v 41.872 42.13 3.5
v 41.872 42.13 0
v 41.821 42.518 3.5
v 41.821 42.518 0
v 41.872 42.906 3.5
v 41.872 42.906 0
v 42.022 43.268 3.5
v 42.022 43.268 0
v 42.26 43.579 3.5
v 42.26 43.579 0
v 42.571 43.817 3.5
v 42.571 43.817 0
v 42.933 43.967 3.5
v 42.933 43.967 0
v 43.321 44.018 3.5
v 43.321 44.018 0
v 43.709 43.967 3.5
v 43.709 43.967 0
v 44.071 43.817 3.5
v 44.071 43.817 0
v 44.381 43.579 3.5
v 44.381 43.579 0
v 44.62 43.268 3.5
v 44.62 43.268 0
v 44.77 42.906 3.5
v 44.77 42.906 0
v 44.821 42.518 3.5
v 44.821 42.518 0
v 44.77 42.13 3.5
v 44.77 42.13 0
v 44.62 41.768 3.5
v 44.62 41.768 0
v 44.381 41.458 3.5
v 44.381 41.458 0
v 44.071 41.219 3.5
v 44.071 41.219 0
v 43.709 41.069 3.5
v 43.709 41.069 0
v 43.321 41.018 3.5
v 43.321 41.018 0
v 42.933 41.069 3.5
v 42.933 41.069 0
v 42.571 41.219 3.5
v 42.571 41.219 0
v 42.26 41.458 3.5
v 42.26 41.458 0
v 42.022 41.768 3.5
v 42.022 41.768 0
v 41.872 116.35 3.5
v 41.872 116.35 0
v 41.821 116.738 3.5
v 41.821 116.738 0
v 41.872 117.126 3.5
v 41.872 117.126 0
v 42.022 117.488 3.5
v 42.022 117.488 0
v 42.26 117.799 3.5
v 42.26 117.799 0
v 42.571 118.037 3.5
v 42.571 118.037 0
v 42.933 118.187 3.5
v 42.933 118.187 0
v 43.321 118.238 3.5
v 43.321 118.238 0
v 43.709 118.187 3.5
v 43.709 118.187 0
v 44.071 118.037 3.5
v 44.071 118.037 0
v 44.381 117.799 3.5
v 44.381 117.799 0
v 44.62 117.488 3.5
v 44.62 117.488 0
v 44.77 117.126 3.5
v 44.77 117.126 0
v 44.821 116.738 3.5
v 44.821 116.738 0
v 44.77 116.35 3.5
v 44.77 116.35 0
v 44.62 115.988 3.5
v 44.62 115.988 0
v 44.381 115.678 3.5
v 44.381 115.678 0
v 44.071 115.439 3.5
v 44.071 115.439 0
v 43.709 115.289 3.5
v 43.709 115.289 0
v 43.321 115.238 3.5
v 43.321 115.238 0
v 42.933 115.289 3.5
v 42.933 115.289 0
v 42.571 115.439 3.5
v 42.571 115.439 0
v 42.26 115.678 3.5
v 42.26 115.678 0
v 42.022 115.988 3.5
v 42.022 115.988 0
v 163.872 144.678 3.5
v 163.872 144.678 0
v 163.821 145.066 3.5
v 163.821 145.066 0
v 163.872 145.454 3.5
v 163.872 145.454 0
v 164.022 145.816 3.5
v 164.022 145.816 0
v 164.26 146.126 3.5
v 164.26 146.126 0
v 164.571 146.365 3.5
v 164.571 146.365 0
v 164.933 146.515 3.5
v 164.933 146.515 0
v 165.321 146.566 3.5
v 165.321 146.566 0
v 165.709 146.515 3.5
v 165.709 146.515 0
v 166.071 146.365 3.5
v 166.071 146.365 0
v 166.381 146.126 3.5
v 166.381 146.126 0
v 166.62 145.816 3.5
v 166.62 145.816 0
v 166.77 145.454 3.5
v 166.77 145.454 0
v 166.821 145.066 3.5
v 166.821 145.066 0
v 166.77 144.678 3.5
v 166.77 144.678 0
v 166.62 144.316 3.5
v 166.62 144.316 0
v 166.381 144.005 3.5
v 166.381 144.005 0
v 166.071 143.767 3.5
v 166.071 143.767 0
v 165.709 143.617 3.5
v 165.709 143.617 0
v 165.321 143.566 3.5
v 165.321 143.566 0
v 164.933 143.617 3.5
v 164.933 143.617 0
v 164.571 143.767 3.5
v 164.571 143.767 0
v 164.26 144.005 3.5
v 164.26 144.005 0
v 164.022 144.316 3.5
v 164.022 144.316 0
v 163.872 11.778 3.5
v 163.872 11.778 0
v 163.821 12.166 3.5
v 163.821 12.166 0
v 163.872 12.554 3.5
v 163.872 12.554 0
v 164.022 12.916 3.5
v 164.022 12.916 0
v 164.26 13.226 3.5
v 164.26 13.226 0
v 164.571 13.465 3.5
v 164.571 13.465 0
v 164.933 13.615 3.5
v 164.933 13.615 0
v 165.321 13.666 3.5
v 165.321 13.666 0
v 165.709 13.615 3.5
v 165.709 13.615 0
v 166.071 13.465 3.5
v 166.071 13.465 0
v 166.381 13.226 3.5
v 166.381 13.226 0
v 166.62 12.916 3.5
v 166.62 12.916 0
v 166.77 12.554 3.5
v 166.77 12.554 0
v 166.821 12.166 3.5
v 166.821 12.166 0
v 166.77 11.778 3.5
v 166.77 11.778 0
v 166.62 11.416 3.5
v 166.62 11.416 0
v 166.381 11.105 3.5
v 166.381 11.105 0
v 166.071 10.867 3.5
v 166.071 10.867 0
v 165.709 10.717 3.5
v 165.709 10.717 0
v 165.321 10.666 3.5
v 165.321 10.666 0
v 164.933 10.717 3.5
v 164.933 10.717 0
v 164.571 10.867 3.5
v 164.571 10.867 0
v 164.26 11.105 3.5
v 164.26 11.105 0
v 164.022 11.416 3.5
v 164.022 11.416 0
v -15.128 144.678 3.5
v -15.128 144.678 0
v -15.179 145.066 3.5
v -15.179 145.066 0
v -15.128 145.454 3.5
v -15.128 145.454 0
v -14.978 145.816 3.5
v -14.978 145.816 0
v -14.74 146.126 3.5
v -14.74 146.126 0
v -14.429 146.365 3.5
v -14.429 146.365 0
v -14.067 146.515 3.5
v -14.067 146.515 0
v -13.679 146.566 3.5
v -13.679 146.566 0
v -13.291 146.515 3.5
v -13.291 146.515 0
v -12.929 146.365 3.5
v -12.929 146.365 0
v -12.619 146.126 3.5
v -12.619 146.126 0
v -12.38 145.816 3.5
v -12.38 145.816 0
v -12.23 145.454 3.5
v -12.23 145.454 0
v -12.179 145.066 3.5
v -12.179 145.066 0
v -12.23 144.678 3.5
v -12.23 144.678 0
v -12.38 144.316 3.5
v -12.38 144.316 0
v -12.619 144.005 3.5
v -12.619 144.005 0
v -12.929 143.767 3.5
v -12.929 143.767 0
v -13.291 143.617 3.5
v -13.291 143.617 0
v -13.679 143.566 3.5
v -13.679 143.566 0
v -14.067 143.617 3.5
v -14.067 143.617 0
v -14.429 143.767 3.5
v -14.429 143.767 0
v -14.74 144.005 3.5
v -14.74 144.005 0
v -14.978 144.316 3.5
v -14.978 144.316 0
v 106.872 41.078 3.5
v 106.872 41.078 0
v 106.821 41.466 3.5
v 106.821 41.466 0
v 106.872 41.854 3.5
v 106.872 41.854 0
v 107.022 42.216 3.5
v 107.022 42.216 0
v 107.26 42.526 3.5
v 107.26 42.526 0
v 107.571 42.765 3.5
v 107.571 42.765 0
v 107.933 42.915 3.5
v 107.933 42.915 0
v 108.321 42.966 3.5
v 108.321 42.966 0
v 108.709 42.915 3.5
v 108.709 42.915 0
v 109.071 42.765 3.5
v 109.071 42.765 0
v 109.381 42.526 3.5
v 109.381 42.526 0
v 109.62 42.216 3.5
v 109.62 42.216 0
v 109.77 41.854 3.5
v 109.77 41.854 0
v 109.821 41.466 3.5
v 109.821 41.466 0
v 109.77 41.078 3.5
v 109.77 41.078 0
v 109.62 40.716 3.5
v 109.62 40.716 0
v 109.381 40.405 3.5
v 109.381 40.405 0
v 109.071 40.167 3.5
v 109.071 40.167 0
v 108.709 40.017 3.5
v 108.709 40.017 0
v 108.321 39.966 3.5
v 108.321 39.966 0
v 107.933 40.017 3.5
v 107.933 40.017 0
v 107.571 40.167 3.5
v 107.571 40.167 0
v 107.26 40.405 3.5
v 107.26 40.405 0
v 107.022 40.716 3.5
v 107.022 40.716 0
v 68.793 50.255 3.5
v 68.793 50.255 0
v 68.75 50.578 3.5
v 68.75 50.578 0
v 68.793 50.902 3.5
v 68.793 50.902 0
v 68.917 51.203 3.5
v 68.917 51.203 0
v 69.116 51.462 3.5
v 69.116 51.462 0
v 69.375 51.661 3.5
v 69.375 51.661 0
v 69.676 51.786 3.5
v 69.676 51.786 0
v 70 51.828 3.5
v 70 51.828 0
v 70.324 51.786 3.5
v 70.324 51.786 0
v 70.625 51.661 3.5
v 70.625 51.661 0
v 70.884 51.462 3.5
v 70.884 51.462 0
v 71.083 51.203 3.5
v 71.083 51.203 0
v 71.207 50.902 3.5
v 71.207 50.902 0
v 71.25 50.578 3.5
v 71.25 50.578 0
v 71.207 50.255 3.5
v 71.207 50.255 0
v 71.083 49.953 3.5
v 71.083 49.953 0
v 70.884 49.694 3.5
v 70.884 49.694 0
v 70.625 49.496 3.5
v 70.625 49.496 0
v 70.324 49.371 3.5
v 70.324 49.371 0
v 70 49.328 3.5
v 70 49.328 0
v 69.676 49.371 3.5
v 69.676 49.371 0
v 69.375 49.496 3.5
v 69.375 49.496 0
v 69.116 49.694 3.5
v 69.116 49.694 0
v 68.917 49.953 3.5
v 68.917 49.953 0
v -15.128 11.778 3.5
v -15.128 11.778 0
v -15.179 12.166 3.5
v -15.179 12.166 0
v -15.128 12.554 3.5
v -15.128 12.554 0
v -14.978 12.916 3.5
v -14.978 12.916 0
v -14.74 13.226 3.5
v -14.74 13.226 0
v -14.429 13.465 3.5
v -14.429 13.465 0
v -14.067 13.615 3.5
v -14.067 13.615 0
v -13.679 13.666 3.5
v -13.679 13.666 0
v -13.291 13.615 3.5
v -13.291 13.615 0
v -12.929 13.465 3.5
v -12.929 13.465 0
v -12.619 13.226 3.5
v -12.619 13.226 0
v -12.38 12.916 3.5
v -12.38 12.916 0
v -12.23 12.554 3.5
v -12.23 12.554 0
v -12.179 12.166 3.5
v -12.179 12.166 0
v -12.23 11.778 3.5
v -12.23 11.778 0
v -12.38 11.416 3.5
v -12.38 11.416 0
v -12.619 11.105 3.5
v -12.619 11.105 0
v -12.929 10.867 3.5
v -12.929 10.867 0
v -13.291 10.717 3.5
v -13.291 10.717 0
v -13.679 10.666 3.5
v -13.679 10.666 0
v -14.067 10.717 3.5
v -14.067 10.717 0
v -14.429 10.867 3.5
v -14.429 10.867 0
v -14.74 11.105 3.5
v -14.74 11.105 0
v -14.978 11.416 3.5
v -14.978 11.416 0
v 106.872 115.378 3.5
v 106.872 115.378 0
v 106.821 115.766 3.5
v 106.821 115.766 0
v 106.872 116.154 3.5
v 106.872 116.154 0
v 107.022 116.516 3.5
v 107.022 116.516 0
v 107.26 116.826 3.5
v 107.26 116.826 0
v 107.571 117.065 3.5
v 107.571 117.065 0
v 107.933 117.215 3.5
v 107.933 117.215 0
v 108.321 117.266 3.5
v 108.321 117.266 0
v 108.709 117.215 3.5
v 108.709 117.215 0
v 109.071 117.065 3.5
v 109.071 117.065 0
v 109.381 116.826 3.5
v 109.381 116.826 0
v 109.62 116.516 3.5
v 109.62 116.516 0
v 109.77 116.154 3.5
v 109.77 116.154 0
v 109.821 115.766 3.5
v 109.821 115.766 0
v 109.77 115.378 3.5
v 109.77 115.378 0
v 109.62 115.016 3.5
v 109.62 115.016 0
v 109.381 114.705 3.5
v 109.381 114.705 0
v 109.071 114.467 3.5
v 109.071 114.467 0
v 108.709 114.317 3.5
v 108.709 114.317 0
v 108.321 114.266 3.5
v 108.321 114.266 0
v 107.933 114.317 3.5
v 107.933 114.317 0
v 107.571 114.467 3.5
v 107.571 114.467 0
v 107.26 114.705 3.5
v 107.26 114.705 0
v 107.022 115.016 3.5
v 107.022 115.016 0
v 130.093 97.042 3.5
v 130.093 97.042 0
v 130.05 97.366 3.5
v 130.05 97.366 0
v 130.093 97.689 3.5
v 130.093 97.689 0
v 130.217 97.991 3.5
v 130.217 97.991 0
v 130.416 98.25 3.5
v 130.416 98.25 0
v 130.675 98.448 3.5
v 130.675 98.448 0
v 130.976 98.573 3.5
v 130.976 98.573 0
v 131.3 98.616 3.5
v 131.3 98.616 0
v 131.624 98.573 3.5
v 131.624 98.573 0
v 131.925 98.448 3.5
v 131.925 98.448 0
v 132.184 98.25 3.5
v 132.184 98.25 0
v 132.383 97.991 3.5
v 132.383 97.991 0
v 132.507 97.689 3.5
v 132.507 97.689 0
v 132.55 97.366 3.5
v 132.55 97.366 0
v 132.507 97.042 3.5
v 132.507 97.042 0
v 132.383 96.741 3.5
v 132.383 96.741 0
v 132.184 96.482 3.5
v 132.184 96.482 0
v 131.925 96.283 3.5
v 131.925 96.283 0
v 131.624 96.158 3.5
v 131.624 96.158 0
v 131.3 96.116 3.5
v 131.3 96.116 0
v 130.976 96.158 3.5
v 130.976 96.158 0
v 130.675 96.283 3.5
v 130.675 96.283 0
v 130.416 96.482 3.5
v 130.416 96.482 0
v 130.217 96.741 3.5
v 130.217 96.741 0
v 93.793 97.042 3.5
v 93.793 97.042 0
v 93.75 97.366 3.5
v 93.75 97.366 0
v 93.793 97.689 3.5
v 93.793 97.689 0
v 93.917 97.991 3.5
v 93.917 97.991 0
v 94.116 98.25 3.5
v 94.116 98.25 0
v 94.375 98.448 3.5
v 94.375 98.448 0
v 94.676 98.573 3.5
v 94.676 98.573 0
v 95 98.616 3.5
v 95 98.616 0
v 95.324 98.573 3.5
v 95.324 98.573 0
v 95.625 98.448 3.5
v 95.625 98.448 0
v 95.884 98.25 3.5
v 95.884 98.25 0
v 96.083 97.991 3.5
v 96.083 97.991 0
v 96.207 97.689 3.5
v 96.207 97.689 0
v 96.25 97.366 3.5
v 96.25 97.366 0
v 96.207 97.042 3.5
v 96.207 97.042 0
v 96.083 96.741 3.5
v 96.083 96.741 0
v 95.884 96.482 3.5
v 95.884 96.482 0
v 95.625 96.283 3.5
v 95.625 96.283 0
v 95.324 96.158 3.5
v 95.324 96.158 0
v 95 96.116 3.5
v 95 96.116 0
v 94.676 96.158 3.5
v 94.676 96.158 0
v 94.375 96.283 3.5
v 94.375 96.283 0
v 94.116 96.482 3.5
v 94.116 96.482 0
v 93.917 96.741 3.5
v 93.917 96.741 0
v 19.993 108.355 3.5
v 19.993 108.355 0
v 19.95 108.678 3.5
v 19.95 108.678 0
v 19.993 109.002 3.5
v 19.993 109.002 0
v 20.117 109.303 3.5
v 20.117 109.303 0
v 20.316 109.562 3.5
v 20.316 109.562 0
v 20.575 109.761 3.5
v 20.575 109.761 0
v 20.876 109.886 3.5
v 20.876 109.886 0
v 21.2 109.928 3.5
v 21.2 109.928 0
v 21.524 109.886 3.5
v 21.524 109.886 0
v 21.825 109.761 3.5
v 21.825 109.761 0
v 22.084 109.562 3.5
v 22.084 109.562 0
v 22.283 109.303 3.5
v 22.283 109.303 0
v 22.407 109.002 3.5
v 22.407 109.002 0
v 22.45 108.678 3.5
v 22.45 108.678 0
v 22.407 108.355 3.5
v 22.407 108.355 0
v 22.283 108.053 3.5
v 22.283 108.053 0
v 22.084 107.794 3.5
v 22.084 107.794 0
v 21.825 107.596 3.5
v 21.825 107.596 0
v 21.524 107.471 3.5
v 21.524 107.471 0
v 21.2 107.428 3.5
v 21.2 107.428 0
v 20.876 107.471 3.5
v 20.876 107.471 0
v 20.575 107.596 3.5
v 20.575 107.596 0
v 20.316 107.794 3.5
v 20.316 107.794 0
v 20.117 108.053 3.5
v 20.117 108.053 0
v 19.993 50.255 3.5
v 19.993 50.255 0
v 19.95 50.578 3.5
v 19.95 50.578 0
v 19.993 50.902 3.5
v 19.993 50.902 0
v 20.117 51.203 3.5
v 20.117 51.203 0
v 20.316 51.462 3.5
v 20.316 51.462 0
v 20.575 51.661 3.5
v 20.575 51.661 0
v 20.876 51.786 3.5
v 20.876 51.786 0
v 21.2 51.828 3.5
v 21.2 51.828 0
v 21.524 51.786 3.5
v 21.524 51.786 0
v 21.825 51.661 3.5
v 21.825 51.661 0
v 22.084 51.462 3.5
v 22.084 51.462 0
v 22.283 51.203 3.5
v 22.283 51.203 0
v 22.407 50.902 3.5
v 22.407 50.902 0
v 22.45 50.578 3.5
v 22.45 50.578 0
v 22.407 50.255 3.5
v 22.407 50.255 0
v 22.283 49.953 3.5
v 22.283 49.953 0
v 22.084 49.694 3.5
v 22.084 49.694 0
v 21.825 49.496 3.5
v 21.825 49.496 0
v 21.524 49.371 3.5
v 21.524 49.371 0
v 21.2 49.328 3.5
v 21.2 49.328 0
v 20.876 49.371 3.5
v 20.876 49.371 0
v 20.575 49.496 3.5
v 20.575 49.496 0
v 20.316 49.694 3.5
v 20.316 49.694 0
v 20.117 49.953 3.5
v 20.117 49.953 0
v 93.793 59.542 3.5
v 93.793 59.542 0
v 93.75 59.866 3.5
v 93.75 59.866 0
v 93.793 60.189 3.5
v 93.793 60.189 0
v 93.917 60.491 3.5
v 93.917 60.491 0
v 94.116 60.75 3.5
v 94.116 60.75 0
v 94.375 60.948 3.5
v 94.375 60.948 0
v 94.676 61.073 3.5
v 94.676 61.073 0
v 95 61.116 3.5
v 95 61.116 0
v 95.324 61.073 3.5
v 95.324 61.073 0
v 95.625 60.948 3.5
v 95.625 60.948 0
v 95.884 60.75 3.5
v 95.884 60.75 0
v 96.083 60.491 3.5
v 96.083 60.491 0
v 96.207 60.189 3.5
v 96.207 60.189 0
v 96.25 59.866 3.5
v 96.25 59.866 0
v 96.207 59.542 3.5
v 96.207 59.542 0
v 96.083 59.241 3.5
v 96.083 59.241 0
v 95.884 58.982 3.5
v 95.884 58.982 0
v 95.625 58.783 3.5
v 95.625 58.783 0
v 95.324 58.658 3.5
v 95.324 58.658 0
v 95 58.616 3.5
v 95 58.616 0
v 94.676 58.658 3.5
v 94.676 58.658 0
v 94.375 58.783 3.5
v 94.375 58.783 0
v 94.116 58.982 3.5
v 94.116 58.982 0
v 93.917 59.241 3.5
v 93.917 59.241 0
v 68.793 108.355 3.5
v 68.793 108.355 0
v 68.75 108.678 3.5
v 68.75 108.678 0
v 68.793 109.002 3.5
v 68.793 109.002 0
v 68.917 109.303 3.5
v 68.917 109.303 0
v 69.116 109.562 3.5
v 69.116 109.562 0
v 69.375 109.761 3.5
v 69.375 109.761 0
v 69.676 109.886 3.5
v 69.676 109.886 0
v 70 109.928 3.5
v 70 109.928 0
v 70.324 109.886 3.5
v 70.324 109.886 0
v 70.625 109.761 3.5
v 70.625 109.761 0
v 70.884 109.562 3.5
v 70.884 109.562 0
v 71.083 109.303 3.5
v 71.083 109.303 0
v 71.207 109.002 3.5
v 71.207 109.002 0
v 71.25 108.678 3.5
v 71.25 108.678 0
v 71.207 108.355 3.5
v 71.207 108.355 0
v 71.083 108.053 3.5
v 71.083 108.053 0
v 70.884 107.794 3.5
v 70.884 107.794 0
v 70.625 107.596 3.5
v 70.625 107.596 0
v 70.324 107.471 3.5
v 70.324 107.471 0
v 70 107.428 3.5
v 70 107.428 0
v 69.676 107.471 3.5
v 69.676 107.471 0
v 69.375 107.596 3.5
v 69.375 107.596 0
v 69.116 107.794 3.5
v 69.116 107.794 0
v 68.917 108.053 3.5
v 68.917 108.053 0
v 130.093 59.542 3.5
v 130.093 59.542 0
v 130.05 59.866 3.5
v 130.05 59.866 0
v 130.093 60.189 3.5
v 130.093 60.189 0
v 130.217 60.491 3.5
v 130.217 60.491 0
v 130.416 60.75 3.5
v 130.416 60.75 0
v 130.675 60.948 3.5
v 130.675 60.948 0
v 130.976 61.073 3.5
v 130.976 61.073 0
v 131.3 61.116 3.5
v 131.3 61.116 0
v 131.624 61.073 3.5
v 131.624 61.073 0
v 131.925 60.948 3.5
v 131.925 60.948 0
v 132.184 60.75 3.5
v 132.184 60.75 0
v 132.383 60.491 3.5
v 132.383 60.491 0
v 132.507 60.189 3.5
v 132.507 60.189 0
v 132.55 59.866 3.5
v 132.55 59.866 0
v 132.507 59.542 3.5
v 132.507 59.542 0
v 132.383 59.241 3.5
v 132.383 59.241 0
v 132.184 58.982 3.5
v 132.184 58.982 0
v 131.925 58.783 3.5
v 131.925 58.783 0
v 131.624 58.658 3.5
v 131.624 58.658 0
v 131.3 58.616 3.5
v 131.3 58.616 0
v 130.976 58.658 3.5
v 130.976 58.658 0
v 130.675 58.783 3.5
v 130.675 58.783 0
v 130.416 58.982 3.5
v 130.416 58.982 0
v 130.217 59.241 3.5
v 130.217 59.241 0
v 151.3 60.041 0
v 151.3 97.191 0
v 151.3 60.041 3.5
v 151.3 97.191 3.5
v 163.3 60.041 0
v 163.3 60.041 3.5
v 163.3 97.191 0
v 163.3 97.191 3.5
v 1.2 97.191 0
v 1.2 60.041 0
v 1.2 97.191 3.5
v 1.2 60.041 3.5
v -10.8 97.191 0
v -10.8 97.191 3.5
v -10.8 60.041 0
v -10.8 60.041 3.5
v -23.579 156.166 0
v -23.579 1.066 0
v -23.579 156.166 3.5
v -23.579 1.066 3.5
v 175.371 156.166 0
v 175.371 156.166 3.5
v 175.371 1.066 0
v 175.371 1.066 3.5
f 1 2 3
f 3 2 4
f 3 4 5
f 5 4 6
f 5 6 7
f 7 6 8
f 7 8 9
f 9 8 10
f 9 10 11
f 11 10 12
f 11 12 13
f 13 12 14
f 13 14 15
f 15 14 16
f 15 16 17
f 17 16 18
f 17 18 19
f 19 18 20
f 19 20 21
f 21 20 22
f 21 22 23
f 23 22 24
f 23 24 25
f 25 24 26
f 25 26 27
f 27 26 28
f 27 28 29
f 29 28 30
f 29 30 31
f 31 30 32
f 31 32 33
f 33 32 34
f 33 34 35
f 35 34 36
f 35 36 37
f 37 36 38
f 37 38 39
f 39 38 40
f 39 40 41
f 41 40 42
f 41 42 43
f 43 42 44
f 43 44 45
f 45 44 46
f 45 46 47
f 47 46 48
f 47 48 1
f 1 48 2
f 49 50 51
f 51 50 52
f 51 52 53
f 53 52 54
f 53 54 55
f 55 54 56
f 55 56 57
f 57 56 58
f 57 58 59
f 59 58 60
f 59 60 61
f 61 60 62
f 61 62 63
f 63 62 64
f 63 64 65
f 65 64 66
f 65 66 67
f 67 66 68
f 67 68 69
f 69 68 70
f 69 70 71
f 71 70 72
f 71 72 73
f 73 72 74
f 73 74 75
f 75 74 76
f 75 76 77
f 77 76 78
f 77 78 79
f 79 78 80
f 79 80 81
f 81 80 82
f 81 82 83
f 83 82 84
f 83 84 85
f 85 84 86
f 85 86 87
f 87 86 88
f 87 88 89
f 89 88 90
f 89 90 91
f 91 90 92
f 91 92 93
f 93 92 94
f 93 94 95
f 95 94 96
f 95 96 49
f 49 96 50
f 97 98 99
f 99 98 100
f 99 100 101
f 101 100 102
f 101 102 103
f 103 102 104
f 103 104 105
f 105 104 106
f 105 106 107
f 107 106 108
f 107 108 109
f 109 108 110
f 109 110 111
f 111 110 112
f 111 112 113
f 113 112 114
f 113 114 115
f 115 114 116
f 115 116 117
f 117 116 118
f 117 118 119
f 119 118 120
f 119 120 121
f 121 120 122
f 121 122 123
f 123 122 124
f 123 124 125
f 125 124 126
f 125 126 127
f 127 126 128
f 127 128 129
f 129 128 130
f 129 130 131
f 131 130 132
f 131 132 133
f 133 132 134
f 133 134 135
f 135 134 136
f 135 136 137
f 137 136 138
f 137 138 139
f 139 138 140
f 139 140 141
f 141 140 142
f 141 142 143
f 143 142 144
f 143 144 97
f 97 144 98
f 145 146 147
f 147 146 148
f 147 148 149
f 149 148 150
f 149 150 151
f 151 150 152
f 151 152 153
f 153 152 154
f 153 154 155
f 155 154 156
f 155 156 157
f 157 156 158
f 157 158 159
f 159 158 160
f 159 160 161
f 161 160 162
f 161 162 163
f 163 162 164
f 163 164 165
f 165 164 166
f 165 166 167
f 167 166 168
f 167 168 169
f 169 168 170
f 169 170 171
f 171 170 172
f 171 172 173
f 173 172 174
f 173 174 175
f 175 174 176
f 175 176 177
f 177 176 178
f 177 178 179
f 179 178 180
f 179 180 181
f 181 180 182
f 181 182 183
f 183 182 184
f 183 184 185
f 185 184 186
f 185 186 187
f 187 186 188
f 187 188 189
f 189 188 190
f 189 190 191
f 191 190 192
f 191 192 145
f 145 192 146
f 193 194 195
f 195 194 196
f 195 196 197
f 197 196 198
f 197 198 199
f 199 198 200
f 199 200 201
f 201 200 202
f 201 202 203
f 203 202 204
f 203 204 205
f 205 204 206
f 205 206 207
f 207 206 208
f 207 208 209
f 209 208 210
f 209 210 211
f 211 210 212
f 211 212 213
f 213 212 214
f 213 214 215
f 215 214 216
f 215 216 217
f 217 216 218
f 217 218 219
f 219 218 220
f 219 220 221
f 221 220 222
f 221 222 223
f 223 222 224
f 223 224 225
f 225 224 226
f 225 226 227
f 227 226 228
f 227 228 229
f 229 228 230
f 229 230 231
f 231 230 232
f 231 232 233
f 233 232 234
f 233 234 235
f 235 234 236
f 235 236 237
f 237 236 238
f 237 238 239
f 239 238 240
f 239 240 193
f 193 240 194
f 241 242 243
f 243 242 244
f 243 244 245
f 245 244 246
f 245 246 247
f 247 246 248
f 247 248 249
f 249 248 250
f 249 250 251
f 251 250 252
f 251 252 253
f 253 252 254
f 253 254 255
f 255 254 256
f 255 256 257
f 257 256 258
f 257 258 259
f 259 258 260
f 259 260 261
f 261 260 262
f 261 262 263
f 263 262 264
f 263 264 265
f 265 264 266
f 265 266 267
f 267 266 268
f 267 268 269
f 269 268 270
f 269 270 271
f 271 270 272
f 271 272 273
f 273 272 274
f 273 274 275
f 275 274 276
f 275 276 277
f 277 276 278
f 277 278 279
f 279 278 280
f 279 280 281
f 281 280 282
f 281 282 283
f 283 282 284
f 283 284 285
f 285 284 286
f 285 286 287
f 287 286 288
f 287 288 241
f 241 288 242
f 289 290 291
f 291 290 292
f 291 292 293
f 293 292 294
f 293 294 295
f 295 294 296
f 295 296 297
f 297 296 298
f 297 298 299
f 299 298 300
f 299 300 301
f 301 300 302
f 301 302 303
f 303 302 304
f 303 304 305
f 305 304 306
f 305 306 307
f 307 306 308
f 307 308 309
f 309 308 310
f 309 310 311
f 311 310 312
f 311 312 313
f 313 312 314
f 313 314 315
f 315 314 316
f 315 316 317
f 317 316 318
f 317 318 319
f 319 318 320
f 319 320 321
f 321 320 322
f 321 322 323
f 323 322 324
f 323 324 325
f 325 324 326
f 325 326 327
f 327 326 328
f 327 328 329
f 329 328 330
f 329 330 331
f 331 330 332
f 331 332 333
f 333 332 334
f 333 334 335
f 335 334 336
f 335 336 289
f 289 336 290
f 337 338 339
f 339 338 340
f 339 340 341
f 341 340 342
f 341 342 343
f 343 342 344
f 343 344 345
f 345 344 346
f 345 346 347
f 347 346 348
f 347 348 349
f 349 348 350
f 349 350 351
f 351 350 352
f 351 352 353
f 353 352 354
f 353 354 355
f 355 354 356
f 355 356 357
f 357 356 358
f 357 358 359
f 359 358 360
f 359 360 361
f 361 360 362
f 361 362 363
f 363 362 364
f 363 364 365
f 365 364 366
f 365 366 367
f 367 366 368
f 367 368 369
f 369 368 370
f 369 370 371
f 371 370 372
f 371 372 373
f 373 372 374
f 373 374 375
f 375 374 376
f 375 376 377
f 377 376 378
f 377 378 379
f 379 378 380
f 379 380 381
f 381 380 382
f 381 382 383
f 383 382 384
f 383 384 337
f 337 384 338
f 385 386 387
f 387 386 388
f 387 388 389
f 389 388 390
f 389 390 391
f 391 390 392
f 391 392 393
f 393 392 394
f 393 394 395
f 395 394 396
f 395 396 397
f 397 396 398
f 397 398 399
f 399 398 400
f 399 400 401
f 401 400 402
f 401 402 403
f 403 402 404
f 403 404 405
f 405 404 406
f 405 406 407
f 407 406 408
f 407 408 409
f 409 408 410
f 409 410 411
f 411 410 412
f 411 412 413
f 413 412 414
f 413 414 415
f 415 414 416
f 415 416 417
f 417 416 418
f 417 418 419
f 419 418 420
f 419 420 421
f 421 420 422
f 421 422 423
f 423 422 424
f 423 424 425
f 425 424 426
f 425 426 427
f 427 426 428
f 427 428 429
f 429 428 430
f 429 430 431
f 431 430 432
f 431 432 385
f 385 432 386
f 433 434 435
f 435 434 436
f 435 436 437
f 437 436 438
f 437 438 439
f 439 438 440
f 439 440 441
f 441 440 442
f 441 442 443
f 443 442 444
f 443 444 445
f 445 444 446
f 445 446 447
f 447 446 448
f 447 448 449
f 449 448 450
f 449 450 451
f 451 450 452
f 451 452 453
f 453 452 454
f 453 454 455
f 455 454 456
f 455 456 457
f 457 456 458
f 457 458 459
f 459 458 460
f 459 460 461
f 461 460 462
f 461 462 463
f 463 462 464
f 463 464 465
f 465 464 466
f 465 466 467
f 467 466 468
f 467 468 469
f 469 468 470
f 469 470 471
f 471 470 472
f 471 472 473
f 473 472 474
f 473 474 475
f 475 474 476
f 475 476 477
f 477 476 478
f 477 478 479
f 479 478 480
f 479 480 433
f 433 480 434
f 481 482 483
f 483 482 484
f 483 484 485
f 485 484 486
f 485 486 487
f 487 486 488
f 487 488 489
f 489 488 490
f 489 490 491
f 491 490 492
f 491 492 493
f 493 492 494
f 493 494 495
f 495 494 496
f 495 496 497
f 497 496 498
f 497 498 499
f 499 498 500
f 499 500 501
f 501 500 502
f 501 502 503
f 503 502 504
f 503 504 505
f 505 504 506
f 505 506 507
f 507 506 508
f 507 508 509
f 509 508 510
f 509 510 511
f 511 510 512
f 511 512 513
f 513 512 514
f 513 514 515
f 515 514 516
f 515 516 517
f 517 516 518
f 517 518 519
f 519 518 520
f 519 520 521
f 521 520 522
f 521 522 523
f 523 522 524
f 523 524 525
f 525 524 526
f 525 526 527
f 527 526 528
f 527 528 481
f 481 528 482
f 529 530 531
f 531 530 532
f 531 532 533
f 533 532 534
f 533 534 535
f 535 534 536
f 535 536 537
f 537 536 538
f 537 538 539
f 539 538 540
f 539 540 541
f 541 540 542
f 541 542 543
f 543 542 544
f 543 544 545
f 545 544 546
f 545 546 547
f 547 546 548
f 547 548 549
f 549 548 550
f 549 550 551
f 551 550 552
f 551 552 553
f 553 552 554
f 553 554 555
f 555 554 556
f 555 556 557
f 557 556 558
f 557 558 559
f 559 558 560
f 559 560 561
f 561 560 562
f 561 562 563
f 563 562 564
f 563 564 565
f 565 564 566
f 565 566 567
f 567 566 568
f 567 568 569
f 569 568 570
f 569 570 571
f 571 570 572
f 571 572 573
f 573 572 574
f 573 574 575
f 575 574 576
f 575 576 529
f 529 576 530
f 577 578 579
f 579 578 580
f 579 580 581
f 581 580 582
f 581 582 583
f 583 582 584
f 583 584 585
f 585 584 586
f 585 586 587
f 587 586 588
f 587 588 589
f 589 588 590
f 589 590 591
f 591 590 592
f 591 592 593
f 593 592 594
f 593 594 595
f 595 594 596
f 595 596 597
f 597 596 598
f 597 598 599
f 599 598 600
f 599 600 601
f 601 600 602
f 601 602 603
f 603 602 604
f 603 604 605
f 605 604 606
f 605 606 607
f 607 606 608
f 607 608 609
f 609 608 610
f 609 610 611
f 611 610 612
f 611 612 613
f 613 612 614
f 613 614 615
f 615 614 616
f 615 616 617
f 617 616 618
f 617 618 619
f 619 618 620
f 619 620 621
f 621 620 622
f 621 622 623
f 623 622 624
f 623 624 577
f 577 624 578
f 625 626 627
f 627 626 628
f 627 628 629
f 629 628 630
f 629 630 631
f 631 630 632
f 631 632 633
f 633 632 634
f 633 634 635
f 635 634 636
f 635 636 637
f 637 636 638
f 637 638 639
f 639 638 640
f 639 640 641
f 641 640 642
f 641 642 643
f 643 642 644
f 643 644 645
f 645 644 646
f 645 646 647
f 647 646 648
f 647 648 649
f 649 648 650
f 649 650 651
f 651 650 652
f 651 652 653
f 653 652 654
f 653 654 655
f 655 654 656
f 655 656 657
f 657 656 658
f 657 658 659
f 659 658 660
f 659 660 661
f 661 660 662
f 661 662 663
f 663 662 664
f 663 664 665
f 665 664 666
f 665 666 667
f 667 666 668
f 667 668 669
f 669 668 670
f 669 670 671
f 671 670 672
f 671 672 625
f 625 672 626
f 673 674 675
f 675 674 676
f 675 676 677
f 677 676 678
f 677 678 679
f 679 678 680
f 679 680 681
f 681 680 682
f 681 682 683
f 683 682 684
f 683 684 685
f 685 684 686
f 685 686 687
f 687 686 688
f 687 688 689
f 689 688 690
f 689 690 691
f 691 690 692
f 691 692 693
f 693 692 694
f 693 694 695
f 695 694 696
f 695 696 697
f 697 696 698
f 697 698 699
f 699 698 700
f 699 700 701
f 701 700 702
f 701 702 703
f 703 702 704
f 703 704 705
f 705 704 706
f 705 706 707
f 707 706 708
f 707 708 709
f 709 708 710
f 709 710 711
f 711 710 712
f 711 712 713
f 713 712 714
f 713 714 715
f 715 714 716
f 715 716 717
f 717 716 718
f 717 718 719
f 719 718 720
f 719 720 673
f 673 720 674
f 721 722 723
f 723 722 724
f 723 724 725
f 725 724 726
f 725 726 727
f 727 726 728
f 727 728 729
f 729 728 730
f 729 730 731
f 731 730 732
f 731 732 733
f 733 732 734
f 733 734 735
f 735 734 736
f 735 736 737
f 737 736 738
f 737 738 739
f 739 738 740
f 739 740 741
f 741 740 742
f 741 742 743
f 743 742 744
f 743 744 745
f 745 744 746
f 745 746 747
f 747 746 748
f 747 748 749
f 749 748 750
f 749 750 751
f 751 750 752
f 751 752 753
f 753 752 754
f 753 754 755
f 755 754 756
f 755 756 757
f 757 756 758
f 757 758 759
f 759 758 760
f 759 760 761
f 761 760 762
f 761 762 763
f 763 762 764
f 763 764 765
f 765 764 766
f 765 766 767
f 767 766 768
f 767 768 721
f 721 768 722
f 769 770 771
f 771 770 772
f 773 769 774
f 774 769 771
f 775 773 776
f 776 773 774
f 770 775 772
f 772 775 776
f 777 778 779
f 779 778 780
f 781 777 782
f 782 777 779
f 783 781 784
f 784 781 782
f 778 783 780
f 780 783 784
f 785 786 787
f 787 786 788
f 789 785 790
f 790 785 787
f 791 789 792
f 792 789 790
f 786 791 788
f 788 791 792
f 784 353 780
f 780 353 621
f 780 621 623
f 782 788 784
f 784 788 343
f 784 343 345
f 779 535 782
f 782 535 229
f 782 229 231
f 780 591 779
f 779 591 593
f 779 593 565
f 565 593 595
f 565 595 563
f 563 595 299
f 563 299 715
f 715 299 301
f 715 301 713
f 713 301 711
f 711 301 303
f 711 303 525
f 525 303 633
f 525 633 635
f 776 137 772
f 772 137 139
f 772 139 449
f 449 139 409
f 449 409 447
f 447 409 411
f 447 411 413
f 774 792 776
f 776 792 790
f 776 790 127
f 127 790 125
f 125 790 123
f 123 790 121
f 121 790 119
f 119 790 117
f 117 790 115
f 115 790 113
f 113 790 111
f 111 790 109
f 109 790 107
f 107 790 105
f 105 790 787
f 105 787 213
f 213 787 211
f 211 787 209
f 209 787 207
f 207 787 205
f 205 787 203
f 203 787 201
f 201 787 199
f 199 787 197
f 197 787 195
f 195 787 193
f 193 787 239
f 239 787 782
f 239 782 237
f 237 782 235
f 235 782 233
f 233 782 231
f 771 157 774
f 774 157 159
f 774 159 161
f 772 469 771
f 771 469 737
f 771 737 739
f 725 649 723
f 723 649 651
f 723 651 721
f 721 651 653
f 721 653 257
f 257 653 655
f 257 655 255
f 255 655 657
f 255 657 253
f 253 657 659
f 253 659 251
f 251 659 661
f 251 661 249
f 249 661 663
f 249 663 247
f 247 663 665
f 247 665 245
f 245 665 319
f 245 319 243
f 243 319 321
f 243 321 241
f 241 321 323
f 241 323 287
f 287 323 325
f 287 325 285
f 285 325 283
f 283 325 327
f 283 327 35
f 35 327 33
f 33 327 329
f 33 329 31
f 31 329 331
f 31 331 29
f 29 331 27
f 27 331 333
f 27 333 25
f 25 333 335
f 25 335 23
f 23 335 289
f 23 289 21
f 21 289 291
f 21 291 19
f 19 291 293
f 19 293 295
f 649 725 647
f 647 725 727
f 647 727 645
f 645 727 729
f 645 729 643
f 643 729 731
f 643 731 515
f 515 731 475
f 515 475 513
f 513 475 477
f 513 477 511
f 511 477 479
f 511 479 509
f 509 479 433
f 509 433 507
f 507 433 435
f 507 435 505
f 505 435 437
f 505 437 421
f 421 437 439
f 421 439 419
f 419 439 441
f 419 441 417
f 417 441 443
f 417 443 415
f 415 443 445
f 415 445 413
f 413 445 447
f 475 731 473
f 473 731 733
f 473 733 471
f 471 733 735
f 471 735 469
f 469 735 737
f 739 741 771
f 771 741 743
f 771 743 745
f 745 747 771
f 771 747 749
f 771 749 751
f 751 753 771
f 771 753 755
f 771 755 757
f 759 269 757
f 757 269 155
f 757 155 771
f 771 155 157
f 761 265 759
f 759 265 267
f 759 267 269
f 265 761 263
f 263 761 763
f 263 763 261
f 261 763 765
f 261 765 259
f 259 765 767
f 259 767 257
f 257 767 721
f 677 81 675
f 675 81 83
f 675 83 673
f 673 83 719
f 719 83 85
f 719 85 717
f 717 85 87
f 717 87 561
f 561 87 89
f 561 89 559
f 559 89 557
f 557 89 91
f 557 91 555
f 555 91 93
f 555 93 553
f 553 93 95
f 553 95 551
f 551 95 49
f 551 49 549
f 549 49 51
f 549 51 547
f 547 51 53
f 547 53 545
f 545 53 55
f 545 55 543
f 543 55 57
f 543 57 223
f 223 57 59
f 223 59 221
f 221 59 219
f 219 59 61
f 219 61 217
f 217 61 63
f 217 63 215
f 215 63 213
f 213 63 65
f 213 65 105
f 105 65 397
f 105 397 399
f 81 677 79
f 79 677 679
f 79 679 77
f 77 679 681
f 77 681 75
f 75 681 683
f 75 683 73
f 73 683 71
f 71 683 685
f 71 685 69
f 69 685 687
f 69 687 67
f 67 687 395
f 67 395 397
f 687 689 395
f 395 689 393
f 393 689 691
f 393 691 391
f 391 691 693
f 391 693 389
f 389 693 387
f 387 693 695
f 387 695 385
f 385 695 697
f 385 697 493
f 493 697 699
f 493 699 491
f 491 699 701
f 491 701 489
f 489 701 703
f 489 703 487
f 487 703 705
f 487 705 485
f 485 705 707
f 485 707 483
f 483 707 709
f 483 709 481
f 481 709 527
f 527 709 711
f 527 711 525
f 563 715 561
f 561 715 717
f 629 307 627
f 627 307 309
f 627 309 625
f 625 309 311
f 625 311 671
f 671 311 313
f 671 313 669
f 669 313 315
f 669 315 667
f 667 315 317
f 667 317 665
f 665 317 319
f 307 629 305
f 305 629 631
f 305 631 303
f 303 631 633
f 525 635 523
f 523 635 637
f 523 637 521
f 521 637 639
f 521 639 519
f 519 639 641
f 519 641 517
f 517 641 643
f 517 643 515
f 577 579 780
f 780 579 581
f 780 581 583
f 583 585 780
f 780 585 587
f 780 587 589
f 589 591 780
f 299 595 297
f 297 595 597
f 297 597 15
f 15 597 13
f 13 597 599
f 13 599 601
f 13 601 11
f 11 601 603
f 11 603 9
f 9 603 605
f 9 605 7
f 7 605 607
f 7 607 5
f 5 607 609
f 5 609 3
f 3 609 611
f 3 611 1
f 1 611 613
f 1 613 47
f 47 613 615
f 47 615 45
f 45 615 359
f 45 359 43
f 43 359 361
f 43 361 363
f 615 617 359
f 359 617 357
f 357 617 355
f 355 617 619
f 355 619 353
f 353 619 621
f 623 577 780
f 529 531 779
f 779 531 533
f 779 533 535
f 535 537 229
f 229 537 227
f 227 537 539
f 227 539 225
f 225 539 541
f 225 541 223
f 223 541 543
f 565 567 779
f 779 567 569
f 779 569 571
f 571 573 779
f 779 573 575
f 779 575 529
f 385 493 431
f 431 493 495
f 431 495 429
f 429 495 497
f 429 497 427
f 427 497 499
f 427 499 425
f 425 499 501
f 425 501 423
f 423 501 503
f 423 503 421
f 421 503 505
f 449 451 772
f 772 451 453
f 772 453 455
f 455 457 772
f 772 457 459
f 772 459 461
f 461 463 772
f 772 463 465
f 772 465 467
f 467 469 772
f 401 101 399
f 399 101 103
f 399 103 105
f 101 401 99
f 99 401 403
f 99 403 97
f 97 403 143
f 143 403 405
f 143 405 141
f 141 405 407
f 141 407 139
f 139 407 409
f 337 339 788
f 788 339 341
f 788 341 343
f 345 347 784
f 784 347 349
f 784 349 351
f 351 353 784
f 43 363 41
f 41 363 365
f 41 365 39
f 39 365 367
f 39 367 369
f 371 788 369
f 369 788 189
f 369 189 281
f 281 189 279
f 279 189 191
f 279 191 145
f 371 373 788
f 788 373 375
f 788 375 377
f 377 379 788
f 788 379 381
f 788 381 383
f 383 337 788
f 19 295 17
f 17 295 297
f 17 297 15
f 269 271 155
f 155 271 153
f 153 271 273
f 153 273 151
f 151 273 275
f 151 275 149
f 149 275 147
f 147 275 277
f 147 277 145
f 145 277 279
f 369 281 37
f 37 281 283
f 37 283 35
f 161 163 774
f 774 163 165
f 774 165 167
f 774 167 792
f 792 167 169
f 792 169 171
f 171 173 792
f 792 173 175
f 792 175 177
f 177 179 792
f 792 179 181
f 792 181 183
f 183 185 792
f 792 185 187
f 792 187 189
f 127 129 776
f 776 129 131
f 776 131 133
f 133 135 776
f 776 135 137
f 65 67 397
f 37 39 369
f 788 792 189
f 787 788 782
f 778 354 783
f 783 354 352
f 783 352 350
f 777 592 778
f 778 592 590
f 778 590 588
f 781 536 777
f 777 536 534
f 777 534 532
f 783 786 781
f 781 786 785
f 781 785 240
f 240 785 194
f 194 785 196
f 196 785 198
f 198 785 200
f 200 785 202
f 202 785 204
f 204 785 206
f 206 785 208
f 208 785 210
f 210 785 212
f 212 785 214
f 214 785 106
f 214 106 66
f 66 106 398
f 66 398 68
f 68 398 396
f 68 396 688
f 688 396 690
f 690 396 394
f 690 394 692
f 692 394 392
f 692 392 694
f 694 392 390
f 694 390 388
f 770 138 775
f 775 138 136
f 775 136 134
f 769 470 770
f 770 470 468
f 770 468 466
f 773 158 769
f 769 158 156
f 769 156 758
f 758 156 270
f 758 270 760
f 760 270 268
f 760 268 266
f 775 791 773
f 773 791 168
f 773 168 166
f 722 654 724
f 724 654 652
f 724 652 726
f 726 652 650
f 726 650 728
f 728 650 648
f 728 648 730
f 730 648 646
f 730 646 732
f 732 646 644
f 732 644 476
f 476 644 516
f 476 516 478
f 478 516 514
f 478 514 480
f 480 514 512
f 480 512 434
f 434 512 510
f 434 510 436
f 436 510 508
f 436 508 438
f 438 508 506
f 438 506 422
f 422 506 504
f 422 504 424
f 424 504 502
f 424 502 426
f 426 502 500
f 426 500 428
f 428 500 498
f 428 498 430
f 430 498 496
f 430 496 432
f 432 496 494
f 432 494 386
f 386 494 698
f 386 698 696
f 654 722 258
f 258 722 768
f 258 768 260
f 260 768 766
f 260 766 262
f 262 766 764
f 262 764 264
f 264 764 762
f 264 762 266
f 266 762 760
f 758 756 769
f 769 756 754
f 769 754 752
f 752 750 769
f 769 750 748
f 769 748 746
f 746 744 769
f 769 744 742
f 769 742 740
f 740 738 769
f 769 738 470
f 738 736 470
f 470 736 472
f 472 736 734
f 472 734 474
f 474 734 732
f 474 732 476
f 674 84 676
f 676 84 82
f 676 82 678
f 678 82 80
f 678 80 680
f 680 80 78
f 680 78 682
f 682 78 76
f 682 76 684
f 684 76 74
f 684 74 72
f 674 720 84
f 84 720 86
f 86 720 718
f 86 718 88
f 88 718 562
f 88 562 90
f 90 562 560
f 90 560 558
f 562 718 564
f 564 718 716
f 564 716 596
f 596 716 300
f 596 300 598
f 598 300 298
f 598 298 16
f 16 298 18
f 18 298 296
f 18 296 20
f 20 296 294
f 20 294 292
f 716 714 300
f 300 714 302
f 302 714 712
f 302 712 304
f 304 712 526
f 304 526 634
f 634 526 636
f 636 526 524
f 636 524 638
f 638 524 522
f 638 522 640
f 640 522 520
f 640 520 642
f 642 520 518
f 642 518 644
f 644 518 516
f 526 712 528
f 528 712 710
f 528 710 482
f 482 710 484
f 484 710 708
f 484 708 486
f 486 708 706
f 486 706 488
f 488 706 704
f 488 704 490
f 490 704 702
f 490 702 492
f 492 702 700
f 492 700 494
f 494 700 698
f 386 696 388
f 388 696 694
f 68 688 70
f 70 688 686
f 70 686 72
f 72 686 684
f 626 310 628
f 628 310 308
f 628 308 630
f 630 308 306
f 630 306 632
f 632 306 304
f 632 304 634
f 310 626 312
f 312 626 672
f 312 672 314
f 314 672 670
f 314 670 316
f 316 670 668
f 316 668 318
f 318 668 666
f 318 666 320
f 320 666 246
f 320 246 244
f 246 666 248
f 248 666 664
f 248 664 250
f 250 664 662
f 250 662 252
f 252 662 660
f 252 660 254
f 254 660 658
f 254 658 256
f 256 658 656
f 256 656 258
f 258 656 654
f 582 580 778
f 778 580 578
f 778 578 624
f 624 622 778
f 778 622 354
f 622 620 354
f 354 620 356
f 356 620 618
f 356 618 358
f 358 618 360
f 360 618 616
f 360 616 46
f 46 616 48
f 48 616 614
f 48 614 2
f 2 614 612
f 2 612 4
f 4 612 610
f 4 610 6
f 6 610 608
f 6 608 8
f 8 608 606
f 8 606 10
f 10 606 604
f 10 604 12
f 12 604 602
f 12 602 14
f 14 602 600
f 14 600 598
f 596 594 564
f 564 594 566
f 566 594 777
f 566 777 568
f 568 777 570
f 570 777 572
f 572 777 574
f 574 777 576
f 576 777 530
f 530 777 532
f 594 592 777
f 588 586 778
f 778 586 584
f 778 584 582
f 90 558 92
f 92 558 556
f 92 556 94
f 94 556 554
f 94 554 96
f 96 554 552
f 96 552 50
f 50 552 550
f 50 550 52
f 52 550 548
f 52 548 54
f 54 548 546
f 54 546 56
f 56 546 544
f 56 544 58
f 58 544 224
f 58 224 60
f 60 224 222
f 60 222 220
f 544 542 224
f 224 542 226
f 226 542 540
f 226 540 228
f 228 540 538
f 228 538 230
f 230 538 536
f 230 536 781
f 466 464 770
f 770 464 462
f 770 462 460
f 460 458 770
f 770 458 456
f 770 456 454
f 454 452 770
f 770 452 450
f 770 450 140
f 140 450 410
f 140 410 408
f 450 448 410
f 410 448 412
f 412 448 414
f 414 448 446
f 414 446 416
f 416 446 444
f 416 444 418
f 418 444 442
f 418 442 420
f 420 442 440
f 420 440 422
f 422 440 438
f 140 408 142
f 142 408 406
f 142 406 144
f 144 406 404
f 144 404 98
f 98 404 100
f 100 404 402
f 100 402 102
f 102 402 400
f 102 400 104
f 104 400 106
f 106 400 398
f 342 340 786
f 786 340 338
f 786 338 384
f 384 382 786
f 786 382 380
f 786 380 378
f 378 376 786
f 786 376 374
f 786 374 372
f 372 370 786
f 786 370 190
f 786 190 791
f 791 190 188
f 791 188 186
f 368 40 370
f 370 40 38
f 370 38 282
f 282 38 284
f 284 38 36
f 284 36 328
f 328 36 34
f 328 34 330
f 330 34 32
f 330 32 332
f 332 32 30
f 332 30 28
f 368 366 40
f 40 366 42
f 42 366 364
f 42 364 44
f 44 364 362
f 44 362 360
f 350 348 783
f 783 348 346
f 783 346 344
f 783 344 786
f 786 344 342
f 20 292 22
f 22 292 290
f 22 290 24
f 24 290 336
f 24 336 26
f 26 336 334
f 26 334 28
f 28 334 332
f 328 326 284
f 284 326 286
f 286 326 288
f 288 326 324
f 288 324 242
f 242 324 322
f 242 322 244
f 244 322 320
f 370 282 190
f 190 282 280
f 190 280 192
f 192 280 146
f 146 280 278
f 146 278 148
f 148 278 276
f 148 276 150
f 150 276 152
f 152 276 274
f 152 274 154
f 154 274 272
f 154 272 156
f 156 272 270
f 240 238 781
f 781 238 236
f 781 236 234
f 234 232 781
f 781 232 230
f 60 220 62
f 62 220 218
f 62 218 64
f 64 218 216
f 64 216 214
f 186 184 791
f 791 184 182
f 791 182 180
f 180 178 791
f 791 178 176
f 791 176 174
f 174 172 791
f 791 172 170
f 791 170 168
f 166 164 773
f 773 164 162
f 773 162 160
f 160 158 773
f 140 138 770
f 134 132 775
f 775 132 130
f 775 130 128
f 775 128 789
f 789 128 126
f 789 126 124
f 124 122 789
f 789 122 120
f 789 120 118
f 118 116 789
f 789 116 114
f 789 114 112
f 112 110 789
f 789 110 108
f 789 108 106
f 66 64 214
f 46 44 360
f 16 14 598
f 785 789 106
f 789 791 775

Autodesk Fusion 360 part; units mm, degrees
sketch "Sketch1" plane through (0, 0, 0) normal (0, 0, 1) x (1, 0, 0)
  circle A0 centre (-13.6792, 145.0658) radius 1.5
  circle A1 centre (165.3208, 145.0658) radius 1.5
  circle A2 centre (-13.6792, 12.1658) radius 1.5
  circle A3 centre (165.3208, 12.1658) radius 1.5
  circle A4 centre (43.3208, 42.5182) radius 1.5
  circle A5 centre (108.3208, 41.4658) radius 1.5
  circle A6 centre (43.3208, 116.7382) radius 1.5
  circle A7 centre (108.3208, 115.7658) radius 1.5
  line L0 (-23.5792, 156.1658) -> (175.3708, 156.1658)
  line L1 (175.3708, 156.1658) -> (175.3708, 1.0658)
  line L2 (175.3708, 1.0658) -> (-23.5792, 1.0658)
  line L3 (-23.5792, 1.0658) -> (-23.5792, 156.1658)
  circle A8 centre (21.2, 108.6782) radius 1.25
  circle A9 centre (70, 108.6782) radius 1.25
  circle A10 centre (21.2, 50.5782) radius 1.25
  circle A11 centre (70, 50.5782) radius 1.25
  circle A12 centre (95, 97.3658) radius 1.25
  circle A13 centre (131.3, 97.3658) radius 1.25
  circle A14 centre (95, 59.8658) radius 1.25
  circle A15 centre (131.3, 59.8658) radius 1.25
  line L4 (-10.8, 97.1908) -> (1.2, 97.1908)
  line L5 (1.2, 97.1908) -> (1.2, 60.0408)
  line L6 (1.2, 60.0408) -> (-10.8, 60.0408)
  line L7 (-10.8, 60.0408) -> (-10.8, 97.1908)
  line L8 (151.3, 97.1908) -> (163.3, 97.1908)
  line L9 (151.3, 60.0408) -> (151.3, 97.1908)
  line L10 (163.3, 60.0408) -> (151.3, 60.0408)
  line L11 (163.3, 97.1908) -> (163.3, 60.0408)
  dimension "d1" = 3
  dimension "d2" = 3
  dimension "d3" = 3
  dimension "d4" = 3
  dimension "d14" = 3
  dimension "d15" = 3
  dimension "d16" = 3
  dimension "d17" = 3
  dimension "d21" = 74.3
  dimension "d33" = 67.05
  dimension "d34" = 67.05
  dimension "d36" = 65
  dimension "d37" = 66.9
  dimension "d38" = 65
  dimension "d39" = 11.1
  dimension "d40" = 9.9
  dimension "d41" = 11.1
  dimension "d42" = 10.05
  dimension "d43" = 10.05
  dimension "d44" = 11.1
  dimension "d45" = 11.1
  dimension "d46" = 9.9
  dimension "d47" = 40.4
  dimension "d48" = 40.4
  dimension "d49" = 2.5
  dimension "d50" = 2.5
  dimension "d51" = 2.5
  dimension "d52" = 2.5
  dimension "d53" = 58.1
  dimension "d54" = 58.1
  dimension "d55" = 48.8
  dimension "d56" = 48.8
  dimension "d65" = 2.5
  dimension "d66" = 2.5
  dimension "d67" = 2.5
  dimension "d68" = 2.5
  dimension "d71" = 36.3
  dimension "d72" = 36.3
  dimension "d73" = 37.5
  dimension "d74" = 37.5
  dimension "d79" = 18.4
  dimension "d80" = 37.15
  dimension "d81" = 12
  dimension "d82" = 37.15
  dimension "d83" = 12
  dimension "d84" = 8.06
  dimension "d85" = 8.06
  dimension "d86" = 18.4
  dimension "d88" = 25
  dimension "d91" = 20
  dimension "d92" = 47.875
  dimension "d93" = 20
  dimension "d94" = 47.875
extrude "Extrude1" add sketch "Sketch1" along normal blind 3.5
